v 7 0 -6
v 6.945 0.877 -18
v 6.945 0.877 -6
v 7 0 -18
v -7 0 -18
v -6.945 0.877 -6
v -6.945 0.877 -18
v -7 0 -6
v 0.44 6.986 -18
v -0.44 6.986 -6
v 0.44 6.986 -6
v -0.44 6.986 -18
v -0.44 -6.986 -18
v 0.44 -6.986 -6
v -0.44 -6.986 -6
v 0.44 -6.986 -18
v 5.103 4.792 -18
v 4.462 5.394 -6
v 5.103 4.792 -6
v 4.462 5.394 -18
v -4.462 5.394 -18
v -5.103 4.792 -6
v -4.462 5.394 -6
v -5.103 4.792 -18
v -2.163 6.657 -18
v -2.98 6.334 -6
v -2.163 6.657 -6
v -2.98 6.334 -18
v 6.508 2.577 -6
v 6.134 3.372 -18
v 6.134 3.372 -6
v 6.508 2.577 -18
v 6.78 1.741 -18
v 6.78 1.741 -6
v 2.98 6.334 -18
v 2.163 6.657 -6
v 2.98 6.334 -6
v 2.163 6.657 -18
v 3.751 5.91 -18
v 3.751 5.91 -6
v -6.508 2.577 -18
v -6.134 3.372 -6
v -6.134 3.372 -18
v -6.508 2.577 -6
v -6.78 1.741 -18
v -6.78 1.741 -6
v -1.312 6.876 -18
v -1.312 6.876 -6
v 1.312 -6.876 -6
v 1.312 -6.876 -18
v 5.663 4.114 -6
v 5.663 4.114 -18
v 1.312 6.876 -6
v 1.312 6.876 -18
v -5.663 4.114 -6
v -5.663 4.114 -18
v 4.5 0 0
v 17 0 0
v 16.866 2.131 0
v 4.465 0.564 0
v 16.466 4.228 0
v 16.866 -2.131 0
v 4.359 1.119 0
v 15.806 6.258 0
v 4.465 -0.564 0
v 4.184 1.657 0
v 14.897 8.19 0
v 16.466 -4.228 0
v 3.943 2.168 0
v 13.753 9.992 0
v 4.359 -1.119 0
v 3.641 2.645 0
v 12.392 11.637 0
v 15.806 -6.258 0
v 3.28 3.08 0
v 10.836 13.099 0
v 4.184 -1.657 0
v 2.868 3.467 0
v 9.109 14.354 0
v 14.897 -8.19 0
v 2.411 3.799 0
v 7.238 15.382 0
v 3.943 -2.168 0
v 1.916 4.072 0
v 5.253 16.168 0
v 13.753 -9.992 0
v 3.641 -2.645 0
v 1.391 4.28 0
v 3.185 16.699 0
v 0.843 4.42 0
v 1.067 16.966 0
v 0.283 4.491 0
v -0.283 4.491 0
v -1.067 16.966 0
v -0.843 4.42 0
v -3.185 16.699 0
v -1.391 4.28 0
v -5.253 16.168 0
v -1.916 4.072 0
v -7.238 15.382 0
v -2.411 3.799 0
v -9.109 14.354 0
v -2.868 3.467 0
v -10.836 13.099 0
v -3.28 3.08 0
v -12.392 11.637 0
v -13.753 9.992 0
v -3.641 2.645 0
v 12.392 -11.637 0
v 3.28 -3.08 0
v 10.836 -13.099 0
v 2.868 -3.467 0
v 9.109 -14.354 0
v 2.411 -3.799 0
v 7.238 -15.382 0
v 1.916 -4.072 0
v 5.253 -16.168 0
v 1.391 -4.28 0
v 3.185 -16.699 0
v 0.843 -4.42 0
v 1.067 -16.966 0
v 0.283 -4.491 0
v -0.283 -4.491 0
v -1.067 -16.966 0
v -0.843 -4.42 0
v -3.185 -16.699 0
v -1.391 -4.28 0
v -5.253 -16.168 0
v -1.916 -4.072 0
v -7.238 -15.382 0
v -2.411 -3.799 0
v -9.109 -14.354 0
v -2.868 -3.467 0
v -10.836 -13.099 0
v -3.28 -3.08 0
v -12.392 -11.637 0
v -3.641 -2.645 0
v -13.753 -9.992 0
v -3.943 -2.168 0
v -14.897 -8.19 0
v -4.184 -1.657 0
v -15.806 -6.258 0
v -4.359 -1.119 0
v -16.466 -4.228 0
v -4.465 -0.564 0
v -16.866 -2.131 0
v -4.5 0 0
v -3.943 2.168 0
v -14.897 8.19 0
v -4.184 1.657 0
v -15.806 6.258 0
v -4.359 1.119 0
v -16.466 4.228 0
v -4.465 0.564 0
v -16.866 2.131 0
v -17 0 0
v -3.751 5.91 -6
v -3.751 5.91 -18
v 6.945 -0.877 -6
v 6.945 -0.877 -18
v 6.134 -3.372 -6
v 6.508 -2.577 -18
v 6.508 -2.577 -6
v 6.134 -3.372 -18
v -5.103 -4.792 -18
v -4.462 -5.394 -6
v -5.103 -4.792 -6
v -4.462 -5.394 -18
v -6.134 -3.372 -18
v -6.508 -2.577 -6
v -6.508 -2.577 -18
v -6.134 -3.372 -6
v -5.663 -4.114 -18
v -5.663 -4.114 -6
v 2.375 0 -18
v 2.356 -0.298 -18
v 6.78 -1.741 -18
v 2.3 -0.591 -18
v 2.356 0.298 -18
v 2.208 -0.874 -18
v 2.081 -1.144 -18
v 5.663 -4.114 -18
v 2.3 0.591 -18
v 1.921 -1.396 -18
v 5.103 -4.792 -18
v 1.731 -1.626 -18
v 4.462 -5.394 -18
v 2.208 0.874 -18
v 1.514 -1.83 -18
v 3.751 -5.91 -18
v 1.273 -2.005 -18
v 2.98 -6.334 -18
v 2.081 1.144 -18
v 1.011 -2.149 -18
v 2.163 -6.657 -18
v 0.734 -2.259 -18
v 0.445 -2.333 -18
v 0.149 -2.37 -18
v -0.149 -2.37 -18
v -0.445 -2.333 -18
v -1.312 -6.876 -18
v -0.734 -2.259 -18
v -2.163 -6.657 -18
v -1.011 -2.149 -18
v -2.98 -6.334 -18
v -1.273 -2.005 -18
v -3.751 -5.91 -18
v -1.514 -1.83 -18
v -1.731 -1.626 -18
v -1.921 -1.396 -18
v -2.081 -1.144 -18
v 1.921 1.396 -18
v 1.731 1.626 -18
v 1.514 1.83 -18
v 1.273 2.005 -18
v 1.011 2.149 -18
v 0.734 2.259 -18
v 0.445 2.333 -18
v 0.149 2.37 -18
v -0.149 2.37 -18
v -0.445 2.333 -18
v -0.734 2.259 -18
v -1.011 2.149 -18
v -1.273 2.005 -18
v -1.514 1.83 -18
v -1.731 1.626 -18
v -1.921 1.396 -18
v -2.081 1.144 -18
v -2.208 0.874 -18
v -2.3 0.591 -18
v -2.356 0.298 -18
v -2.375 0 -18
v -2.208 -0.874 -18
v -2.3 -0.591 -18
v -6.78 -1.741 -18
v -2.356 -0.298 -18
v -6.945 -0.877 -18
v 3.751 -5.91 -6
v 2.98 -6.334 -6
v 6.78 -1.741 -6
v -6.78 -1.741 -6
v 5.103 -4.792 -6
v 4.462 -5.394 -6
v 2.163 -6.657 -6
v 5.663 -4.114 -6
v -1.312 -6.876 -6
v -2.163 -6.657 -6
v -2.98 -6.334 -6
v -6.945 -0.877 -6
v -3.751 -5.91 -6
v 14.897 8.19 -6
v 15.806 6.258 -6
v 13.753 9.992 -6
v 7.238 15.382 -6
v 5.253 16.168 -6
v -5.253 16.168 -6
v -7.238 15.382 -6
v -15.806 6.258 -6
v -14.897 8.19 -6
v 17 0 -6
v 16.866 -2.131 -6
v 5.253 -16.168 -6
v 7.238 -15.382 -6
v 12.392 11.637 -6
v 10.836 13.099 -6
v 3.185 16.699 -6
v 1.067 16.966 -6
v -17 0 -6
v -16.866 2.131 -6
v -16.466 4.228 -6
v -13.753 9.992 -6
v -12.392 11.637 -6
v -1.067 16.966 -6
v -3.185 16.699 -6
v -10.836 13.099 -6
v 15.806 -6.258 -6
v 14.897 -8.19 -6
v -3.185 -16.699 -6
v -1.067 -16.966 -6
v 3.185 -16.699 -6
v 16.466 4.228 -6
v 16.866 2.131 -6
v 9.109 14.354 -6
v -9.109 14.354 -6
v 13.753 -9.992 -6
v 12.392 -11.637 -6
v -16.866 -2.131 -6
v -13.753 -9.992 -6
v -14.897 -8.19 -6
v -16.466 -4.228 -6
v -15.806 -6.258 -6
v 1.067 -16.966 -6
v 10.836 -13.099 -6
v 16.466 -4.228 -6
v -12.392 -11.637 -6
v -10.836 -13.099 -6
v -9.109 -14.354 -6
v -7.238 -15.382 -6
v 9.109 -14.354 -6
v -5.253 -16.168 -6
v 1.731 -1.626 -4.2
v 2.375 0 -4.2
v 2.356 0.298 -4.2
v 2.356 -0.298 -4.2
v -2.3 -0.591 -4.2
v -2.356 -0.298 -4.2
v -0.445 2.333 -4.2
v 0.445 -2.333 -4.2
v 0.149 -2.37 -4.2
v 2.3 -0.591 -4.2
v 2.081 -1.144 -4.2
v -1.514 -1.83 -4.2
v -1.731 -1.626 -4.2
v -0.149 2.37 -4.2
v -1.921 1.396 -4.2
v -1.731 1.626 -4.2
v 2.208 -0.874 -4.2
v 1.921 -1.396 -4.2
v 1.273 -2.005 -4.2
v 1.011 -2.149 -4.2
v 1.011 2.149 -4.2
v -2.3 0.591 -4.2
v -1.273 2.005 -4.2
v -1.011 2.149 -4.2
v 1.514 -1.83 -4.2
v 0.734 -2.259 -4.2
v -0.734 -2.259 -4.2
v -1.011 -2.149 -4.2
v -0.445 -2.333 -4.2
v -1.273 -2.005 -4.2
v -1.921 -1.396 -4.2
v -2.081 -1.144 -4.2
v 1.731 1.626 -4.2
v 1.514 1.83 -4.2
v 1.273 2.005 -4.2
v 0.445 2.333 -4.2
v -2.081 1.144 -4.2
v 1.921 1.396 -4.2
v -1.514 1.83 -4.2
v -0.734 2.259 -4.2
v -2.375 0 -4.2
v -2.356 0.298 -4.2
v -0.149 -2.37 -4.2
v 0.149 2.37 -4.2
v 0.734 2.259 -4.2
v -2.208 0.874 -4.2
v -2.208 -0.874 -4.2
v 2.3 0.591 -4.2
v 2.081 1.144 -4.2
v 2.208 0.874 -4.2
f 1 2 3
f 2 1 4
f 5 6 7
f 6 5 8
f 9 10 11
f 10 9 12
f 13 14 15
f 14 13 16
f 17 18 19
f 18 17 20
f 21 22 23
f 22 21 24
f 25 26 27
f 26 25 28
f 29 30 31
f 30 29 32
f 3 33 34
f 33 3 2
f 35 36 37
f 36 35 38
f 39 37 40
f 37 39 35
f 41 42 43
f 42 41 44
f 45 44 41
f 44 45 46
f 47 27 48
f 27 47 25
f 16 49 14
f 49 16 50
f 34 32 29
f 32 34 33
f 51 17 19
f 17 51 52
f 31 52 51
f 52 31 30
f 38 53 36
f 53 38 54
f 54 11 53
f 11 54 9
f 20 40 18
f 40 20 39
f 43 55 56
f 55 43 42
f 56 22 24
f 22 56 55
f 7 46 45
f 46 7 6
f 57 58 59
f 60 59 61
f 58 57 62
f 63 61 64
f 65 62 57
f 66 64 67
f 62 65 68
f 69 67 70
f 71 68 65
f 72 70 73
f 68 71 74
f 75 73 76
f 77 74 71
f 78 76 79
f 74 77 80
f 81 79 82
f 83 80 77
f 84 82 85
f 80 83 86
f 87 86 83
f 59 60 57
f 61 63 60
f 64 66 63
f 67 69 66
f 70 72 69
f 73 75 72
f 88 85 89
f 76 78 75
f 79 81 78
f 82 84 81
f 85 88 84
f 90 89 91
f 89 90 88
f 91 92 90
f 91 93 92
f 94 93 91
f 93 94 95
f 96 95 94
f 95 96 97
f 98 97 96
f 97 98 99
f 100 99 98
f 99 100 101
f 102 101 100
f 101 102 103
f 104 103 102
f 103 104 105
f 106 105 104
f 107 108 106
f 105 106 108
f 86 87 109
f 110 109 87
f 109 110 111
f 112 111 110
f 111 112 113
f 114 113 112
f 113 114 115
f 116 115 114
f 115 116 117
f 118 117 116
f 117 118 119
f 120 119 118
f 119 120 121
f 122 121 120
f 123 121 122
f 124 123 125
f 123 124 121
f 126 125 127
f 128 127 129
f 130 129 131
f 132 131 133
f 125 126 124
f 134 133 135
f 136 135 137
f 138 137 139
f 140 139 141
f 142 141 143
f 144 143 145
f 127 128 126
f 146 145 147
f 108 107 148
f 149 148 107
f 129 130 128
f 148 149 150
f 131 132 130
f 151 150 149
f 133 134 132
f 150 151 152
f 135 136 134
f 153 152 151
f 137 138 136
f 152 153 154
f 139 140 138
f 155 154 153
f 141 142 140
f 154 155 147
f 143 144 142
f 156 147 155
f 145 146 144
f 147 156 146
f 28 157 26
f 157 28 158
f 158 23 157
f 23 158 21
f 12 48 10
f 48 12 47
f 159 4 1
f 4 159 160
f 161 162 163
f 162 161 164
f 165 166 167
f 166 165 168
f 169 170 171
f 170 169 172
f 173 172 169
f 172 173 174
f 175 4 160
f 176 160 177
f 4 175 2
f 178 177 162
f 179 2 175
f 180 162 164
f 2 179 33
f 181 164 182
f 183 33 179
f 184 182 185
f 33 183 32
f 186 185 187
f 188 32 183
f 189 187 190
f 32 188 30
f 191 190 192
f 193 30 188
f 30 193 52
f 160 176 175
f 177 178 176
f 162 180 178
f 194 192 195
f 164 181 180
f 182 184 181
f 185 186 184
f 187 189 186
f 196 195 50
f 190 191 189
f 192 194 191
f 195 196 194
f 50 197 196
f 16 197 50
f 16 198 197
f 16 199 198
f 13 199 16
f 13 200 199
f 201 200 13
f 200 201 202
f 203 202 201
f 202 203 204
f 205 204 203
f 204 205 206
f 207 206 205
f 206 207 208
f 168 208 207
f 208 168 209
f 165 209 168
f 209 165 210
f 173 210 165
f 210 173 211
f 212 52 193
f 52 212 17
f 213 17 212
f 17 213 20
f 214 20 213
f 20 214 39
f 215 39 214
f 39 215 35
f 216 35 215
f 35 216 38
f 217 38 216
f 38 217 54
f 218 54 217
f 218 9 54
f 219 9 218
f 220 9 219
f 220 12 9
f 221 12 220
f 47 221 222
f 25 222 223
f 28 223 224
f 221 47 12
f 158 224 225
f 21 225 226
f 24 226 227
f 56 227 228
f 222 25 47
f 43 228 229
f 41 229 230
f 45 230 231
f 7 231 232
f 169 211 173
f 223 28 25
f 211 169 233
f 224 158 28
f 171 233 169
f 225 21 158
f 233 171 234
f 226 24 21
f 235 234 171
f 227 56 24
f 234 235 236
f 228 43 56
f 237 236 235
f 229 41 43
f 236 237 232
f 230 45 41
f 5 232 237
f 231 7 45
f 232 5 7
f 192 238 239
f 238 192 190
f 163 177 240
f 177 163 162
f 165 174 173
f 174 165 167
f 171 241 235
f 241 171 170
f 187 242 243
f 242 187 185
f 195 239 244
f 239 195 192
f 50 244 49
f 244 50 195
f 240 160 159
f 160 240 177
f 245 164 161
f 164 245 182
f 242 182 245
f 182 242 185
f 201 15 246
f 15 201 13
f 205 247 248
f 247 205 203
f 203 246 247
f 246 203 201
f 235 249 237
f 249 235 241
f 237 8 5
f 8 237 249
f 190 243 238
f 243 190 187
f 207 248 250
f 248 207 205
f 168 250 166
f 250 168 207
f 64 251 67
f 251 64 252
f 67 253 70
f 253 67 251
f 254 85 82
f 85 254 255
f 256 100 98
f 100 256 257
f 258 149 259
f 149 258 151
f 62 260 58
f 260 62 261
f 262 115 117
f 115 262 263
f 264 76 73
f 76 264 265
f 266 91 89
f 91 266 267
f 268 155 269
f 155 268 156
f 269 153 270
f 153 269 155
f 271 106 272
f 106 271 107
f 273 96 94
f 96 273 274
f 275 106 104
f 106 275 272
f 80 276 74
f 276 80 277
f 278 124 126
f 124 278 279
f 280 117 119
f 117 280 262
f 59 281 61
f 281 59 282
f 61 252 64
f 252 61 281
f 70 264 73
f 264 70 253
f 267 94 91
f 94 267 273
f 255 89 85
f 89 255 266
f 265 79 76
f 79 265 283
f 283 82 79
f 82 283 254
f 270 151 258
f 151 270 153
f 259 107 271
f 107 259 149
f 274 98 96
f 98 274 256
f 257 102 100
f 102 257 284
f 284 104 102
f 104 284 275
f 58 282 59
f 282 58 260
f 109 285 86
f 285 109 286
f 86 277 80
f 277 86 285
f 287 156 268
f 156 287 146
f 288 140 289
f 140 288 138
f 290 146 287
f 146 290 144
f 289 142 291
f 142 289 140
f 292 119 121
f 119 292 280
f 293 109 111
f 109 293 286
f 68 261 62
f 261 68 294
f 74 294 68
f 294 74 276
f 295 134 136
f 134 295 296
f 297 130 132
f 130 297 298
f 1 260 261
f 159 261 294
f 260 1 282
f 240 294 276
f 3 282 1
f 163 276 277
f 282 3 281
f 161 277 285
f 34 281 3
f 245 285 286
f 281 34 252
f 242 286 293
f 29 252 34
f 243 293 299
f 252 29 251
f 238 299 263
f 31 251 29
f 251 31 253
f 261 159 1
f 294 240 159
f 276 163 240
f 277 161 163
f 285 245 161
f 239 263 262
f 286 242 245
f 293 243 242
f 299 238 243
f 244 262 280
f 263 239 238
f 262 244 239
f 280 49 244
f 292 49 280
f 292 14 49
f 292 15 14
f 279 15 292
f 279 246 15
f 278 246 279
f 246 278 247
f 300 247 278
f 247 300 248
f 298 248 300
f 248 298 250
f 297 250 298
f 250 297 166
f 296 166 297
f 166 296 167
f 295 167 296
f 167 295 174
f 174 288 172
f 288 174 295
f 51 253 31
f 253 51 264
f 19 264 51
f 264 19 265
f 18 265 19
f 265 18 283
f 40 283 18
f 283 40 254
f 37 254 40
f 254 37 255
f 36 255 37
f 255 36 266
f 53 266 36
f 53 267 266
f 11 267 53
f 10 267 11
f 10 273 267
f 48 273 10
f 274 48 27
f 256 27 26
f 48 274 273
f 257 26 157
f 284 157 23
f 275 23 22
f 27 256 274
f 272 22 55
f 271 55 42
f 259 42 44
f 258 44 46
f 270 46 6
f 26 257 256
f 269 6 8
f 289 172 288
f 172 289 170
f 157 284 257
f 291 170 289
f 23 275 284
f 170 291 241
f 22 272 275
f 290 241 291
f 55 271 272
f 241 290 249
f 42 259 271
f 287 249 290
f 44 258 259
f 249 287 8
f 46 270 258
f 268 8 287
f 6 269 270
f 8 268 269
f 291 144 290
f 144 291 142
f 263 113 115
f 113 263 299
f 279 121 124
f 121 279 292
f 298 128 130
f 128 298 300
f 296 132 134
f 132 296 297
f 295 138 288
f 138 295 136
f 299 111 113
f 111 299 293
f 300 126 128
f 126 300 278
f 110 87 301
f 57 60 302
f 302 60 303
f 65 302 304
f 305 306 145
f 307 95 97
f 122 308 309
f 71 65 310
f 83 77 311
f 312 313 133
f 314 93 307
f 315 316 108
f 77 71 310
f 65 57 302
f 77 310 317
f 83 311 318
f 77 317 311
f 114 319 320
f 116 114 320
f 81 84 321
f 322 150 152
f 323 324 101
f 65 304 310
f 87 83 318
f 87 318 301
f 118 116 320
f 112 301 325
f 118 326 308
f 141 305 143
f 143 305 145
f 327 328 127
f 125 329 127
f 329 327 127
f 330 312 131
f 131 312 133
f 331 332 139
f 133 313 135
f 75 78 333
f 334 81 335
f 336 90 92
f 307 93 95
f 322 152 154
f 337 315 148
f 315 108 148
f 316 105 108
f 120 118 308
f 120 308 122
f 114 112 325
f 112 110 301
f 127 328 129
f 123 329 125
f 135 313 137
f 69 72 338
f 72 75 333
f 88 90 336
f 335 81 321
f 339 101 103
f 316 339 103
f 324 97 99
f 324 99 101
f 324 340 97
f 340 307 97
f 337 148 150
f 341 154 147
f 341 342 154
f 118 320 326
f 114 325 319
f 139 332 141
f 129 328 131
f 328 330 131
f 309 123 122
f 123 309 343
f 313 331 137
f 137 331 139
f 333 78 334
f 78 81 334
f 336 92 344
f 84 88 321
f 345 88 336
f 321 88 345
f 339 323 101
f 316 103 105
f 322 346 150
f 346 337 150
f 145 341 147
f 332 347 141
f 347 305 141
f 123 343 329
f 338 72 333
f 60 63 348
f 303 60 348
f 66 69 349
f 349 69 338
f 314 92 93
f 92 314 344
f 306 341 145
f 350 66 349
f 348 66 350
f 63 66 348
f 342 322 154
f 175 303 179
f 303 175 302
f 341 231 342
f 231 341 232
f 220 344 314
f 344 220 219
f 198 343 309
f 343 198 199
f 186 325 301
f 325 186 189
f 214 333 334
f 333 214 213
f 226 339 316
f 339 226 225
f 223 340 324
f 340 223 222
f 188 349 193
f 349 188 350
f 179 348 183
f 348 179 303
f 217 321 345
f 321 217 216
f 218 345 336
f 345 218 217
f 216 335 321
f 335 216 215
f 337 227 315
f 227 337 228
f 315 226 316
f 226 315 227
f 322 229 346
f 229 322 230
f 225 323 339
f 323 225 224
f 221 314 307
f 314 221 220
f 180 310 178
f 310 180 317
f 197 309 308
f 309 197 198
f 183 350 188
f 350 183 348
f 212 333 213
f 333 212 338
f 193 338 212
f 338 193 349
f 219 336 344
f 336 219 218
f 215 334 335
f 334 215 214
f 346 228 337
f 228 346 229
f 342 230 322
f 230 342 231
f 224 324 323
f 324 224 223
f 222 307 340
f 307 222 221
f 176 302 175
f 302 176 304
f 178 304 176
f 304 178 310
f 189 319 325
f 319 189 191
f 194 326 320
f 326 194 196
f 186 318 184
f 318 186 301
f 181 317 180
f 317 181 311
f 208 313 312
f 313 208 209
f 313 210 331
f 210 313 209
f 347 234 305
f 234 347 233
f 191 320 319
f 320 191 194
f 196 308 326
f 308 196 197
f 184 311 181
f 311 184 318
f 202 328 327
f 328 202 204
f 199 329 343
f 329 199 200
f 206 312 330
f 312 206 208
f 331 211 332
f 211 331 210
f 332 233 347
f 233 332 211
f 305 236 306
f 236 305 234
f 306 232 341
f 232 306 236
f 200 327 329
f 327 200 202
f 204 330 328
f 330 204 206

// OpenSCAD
$fn = 50;


difference() {
	union() {
		translate(v = [0, 0, -18.0000000000]) {
			cylinder(h = 18, r = 7.0000000000);
		}
		translate(v = [0, 0, -6.0000000000]) {
			cylinder(h = 6, r = 17.0000000000);
		}
	}
	union() {
		translate(v = [0, 0, 0]) {
			rotate(a = [0, 0, 0]) {
				difference() {
					union() {
						#translate(v = [0, 0, -18.0000000000]) {
							cylinder(h = 18, r = 2.2500000000);
						}
						#translate(v = [0, 0, -4.2000000000]) {
							cylinder(h = 4.2000000000, r1 = 2.3750000000, r2 = 4.5000000000);
						}
						#translate(v = [0, 0, -18.0000000000]) {
							cylinder(h = 18, r = 2.3750000000);
						}
						#translate(v = [0, 0, -18.0000000000]) {
							cylinder(h = 18, r = 2.2500000000);
						}
					}
					union();
				}
			}
		}
	}
}
